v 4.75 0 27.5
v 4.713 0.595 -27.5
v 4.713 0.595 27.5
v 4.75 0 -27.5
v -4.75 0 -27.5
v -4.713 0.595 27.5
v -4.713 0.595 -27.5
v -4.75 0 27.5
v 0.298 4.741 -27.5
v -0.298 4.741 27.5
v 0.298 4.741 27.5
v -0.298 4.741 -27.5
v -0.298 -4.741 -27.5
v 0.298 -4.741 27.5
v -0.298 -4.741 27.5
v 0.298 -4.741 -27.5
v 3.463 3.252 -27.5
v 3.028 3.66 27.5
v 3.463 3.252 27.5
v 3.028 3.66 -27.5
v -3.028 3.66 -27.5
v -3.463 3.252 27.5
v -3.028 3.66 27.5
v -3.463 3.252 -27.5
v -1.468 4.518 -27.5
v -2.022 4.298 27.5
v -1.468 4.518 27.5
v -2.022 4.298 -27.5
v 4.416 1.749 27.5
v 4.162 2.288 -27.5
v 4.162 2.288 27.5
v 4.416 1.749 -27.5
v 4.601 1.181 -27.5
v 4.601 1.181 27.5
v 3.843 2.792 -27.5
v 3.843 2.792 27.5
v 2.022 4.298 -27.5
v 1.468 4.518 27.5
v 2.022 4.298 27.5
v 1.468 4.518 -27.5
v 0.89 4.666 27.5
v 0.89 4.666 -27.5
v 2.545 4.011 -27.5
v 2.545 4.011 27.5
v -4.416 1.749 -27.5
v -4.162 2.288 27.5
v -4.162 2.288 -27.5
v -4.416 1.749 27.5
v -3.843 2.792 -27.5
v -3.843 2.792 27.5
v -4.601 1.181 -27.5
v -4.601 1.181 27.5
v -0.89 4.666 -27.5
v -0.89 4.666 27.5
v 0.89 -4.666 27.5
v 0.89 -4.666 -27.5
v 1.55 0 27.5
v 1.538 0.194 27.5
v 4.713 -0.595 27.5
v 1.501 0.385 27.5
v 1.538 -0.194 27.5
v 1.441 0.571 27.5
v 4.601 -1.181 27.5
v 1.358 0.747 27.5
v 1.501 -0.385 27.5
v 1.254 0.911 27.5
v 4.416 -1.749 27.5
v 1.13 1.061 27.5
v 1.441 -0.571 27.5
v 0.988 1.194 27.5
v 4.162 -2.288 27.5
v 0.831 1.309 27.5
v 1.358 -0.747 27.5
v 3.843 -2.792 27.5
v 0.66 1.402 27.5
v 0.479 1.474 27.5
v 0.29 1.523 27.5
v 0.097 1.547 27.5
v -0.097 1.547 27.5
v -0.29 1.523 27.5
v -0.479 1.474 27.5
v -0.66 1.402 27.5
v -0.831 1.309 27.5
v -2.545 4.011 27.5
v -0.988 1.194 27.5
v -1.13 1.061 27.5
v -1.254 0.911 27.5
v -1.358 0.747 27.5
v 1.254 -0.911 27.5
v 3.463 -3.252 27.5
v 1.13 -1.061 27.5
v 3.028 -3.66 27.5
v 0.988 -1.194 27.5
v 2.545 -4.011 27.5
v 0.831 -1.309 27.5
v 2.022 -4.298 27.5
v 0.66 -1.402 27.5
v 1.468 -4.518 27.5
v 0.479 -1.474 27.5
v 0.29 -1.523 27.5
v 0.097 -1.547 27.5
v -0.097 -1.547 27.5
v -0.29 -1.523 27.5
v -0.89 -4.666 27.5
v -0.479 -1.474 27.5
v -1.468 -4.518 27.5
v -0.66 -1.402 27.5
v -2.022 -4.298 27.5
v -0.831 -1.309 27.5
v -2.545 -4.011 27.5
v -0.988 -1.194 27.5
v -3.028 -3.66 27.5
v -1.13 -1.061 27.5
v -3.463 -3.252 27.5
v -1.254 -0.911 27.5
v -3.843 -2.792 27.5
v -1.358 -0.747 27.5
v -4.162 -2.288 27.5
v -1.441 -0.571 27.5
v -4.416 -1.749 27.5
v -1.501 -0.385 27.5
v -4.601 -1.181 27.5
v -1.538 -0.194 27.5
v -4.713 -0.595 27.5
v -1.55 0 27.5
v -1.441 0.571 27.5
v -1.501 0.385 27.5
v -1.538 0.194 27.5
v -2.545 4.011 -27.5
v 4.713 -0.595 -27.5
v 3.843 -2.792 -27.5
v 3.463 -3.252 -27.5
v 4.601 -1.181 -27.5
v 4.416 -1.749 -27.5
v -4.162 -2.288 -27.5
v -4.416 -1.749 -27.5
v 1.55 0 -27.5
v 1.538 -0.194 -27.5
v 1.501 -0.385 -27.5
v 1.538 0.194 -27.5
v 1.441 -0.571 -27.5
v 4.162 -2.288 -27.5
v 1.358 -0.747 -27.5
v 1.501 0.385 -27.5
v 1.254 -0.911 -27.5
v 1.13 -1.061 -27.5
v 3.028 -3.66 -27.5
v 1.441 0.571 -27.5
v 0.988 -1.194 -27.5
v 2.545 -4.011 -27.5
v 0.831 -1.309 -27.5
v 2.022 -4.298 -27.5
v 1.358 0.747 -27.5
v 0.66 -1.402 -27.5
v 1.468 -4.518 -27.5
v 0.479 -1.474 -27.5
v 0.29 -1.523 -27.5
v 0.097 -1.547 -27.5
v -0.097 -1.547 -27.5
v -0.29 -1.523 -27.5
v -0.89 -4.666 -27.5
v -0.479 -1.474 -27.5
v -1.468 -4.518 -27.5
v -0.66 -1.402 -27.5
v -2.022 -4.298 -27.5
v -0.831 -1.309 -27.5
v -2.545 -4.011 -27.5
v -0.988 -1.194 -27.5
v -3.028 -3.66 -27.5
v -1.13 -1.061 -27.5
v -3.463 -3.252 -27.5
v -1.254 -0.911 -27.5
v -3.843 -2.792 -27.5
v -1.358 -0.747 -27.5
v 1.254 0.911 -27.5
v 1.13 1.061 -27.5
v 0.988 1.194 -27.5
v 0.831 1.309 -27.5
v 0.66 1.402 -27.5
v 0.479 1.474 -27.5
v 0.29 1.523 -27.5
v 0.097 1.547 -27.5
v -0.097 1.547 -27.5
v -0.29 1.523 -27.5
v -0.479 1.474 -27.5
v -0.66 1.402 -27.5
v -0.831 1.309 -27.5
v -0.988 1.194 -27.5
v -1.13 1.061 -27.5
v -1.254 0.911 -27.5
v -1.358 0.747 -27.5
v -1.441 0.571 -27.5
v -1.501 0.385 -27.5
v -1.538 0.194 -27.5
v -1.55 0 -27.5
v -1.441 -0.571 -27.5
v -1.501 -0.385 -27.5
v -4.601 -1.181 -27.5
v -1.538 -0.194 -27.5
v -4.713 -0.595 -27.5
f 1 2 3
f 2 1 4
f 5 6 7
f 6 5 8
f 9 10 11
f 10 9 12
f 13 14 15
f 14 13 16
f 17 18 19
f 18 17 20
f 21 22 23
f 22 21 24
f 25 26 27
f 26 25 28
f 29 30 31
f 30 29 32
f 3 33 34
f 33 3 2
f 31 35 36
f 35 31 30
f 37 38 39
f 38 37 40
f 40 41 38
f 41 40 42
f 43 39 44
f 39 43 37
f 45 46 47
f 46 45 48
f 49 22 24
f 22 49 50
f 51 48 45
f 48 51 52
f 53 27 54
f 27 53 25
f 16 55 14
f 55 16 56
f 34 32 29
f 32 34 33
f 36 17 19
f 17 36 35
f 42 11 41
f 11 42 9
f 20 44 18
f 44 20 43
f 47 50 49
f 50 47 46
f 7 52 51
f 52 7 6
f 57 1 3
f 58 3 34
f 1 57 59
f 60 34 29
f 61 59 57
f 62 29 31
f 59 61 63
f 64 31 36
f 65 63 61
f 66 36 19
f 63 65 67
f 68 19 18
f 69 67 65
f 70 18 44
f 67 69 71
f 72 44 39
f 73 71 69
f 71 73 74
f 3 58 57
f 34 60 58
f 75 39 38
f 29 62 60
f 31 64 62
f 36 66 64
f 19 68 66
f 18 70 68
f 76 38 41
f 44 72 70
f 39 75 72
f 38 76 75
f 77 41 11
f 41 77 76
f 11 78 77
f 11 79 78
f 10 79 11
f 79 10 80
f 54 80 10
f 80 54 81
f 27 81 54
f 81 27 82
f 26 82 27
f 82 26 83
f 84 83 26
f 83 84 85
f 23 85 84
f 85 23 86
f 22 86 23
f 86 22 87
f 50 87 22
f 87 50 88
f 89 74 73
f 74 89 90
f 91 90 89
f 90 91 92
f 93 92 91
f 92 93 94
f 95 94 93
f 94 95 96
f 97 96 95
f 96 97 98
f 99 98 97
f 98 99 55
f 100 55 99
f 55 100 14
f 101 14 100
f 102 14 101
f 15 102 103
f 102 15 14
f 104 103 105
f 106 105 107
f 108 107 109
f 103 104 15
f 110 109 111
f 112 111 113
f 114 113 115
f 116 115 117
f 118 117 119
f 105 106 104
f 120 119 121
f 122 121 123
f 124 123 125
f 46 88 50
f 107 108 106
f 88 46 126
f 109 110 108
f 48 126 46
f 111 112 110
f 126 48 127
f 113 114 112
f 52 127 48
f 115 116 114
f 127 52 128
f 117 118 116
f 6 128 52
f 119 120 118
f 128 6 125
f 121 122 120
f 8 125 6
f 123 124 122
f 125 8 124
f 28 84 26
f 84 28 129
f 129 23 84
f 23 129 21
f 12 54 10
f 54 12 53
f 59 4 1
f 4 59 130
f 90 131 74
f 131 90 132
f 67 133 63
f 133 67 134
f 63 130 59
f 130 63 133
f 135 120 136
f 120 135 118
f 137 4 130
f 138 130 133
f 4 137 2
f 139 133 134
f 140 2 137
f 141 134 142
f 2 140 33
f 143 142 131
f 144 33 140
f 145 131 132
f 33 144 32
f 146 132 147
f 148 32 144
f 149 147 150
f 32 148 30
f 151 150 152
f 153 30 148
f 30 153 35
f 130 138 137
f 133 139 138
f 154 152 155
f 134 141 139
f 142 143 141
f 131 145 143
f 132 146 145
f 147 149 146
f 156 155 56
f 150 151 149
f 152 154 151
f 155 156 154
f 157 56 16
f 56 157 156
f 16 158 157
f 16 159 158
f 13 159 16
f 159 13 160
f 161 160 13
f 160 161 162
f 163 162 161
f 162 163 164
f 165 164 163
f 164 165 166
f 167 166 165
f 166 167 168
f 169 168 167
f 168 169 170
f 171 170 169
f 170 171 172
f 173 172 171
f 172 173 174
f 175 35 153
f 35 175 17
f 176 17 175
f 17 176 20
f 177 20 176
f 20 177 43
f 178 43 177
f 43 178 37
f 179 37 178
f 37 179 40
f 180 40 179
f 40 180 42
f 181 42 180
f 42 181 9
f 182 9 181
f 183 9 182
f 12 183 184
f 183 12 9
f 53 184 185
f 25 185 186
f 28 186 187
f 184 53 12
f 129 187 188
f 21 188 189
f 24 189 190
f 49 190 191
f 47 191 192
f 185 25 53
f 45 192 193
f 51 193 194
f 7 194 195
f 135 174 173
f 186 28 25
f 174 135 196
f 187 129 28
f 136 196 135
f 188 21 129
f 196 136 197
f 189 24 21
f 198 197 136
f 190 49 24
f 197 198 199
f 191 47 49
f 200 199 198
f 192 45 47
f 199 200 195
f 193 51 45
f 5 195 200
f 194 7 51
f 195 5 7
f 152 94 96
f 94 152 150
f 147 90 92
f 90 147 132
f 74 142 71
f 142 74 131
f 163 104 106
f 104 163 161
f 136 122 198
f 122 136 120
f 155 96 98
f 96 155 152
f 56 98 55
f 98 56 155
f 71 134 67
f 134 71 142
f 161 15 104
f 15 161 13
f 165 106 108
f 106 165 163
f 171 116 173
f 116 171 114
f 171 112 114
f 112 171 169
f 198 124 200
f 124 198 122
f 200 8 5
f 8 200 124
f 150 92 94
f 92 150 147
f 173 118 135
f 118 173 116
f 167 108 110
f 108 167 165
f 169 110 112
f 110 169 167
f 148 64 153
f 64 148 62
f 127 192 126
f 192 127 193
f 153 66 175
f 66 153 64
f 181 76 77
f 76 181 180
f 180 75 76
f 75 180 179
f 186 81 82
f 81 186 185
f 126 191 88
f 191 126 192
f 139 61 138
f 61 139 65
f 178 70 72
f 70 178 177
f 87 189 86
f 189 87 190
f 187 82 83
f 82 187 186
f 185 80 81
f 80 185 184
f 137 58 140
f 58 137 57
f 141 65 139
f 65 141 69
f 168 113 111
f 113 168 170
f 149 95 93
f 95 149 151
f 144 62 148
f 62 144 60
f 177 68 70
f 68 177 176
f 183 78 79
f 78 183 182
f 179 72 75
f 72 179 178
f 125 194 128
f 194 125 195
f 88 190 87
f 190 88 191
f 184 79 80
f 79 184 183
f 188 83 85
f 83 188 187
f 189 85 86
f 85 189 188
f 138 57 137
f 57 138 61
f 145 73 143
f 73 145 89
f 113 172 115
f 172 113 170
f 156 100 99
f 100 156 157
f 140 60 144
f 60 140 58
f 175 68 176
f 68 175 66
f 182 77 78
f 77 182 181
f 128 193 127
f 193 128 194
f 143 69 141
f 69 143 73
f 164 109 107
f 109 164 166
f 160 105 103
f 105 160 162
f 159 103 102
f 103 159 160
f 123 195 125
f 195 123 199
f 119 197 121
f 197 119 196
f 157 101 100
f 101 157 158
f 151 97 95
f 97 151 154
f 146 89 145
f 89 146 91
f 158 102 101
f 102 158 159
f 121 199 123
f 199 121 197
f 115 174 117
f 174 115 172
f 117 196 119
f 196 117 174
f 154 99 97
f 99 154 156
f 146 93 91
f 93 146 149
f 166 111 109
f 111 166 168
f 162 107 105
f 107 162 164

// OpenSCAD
$fn = 50;


difference() {
	union() {
		translate(v = [0, 0, -27.5000000000]) {
			cylinder(h = 55, r = 4.7500000000);
		}
	}
	union() {
		translate(v = [0, 0, -100.0000000000]) {
			cylinder(h = 200, r = 1.5500000000);
		}
	}
}
